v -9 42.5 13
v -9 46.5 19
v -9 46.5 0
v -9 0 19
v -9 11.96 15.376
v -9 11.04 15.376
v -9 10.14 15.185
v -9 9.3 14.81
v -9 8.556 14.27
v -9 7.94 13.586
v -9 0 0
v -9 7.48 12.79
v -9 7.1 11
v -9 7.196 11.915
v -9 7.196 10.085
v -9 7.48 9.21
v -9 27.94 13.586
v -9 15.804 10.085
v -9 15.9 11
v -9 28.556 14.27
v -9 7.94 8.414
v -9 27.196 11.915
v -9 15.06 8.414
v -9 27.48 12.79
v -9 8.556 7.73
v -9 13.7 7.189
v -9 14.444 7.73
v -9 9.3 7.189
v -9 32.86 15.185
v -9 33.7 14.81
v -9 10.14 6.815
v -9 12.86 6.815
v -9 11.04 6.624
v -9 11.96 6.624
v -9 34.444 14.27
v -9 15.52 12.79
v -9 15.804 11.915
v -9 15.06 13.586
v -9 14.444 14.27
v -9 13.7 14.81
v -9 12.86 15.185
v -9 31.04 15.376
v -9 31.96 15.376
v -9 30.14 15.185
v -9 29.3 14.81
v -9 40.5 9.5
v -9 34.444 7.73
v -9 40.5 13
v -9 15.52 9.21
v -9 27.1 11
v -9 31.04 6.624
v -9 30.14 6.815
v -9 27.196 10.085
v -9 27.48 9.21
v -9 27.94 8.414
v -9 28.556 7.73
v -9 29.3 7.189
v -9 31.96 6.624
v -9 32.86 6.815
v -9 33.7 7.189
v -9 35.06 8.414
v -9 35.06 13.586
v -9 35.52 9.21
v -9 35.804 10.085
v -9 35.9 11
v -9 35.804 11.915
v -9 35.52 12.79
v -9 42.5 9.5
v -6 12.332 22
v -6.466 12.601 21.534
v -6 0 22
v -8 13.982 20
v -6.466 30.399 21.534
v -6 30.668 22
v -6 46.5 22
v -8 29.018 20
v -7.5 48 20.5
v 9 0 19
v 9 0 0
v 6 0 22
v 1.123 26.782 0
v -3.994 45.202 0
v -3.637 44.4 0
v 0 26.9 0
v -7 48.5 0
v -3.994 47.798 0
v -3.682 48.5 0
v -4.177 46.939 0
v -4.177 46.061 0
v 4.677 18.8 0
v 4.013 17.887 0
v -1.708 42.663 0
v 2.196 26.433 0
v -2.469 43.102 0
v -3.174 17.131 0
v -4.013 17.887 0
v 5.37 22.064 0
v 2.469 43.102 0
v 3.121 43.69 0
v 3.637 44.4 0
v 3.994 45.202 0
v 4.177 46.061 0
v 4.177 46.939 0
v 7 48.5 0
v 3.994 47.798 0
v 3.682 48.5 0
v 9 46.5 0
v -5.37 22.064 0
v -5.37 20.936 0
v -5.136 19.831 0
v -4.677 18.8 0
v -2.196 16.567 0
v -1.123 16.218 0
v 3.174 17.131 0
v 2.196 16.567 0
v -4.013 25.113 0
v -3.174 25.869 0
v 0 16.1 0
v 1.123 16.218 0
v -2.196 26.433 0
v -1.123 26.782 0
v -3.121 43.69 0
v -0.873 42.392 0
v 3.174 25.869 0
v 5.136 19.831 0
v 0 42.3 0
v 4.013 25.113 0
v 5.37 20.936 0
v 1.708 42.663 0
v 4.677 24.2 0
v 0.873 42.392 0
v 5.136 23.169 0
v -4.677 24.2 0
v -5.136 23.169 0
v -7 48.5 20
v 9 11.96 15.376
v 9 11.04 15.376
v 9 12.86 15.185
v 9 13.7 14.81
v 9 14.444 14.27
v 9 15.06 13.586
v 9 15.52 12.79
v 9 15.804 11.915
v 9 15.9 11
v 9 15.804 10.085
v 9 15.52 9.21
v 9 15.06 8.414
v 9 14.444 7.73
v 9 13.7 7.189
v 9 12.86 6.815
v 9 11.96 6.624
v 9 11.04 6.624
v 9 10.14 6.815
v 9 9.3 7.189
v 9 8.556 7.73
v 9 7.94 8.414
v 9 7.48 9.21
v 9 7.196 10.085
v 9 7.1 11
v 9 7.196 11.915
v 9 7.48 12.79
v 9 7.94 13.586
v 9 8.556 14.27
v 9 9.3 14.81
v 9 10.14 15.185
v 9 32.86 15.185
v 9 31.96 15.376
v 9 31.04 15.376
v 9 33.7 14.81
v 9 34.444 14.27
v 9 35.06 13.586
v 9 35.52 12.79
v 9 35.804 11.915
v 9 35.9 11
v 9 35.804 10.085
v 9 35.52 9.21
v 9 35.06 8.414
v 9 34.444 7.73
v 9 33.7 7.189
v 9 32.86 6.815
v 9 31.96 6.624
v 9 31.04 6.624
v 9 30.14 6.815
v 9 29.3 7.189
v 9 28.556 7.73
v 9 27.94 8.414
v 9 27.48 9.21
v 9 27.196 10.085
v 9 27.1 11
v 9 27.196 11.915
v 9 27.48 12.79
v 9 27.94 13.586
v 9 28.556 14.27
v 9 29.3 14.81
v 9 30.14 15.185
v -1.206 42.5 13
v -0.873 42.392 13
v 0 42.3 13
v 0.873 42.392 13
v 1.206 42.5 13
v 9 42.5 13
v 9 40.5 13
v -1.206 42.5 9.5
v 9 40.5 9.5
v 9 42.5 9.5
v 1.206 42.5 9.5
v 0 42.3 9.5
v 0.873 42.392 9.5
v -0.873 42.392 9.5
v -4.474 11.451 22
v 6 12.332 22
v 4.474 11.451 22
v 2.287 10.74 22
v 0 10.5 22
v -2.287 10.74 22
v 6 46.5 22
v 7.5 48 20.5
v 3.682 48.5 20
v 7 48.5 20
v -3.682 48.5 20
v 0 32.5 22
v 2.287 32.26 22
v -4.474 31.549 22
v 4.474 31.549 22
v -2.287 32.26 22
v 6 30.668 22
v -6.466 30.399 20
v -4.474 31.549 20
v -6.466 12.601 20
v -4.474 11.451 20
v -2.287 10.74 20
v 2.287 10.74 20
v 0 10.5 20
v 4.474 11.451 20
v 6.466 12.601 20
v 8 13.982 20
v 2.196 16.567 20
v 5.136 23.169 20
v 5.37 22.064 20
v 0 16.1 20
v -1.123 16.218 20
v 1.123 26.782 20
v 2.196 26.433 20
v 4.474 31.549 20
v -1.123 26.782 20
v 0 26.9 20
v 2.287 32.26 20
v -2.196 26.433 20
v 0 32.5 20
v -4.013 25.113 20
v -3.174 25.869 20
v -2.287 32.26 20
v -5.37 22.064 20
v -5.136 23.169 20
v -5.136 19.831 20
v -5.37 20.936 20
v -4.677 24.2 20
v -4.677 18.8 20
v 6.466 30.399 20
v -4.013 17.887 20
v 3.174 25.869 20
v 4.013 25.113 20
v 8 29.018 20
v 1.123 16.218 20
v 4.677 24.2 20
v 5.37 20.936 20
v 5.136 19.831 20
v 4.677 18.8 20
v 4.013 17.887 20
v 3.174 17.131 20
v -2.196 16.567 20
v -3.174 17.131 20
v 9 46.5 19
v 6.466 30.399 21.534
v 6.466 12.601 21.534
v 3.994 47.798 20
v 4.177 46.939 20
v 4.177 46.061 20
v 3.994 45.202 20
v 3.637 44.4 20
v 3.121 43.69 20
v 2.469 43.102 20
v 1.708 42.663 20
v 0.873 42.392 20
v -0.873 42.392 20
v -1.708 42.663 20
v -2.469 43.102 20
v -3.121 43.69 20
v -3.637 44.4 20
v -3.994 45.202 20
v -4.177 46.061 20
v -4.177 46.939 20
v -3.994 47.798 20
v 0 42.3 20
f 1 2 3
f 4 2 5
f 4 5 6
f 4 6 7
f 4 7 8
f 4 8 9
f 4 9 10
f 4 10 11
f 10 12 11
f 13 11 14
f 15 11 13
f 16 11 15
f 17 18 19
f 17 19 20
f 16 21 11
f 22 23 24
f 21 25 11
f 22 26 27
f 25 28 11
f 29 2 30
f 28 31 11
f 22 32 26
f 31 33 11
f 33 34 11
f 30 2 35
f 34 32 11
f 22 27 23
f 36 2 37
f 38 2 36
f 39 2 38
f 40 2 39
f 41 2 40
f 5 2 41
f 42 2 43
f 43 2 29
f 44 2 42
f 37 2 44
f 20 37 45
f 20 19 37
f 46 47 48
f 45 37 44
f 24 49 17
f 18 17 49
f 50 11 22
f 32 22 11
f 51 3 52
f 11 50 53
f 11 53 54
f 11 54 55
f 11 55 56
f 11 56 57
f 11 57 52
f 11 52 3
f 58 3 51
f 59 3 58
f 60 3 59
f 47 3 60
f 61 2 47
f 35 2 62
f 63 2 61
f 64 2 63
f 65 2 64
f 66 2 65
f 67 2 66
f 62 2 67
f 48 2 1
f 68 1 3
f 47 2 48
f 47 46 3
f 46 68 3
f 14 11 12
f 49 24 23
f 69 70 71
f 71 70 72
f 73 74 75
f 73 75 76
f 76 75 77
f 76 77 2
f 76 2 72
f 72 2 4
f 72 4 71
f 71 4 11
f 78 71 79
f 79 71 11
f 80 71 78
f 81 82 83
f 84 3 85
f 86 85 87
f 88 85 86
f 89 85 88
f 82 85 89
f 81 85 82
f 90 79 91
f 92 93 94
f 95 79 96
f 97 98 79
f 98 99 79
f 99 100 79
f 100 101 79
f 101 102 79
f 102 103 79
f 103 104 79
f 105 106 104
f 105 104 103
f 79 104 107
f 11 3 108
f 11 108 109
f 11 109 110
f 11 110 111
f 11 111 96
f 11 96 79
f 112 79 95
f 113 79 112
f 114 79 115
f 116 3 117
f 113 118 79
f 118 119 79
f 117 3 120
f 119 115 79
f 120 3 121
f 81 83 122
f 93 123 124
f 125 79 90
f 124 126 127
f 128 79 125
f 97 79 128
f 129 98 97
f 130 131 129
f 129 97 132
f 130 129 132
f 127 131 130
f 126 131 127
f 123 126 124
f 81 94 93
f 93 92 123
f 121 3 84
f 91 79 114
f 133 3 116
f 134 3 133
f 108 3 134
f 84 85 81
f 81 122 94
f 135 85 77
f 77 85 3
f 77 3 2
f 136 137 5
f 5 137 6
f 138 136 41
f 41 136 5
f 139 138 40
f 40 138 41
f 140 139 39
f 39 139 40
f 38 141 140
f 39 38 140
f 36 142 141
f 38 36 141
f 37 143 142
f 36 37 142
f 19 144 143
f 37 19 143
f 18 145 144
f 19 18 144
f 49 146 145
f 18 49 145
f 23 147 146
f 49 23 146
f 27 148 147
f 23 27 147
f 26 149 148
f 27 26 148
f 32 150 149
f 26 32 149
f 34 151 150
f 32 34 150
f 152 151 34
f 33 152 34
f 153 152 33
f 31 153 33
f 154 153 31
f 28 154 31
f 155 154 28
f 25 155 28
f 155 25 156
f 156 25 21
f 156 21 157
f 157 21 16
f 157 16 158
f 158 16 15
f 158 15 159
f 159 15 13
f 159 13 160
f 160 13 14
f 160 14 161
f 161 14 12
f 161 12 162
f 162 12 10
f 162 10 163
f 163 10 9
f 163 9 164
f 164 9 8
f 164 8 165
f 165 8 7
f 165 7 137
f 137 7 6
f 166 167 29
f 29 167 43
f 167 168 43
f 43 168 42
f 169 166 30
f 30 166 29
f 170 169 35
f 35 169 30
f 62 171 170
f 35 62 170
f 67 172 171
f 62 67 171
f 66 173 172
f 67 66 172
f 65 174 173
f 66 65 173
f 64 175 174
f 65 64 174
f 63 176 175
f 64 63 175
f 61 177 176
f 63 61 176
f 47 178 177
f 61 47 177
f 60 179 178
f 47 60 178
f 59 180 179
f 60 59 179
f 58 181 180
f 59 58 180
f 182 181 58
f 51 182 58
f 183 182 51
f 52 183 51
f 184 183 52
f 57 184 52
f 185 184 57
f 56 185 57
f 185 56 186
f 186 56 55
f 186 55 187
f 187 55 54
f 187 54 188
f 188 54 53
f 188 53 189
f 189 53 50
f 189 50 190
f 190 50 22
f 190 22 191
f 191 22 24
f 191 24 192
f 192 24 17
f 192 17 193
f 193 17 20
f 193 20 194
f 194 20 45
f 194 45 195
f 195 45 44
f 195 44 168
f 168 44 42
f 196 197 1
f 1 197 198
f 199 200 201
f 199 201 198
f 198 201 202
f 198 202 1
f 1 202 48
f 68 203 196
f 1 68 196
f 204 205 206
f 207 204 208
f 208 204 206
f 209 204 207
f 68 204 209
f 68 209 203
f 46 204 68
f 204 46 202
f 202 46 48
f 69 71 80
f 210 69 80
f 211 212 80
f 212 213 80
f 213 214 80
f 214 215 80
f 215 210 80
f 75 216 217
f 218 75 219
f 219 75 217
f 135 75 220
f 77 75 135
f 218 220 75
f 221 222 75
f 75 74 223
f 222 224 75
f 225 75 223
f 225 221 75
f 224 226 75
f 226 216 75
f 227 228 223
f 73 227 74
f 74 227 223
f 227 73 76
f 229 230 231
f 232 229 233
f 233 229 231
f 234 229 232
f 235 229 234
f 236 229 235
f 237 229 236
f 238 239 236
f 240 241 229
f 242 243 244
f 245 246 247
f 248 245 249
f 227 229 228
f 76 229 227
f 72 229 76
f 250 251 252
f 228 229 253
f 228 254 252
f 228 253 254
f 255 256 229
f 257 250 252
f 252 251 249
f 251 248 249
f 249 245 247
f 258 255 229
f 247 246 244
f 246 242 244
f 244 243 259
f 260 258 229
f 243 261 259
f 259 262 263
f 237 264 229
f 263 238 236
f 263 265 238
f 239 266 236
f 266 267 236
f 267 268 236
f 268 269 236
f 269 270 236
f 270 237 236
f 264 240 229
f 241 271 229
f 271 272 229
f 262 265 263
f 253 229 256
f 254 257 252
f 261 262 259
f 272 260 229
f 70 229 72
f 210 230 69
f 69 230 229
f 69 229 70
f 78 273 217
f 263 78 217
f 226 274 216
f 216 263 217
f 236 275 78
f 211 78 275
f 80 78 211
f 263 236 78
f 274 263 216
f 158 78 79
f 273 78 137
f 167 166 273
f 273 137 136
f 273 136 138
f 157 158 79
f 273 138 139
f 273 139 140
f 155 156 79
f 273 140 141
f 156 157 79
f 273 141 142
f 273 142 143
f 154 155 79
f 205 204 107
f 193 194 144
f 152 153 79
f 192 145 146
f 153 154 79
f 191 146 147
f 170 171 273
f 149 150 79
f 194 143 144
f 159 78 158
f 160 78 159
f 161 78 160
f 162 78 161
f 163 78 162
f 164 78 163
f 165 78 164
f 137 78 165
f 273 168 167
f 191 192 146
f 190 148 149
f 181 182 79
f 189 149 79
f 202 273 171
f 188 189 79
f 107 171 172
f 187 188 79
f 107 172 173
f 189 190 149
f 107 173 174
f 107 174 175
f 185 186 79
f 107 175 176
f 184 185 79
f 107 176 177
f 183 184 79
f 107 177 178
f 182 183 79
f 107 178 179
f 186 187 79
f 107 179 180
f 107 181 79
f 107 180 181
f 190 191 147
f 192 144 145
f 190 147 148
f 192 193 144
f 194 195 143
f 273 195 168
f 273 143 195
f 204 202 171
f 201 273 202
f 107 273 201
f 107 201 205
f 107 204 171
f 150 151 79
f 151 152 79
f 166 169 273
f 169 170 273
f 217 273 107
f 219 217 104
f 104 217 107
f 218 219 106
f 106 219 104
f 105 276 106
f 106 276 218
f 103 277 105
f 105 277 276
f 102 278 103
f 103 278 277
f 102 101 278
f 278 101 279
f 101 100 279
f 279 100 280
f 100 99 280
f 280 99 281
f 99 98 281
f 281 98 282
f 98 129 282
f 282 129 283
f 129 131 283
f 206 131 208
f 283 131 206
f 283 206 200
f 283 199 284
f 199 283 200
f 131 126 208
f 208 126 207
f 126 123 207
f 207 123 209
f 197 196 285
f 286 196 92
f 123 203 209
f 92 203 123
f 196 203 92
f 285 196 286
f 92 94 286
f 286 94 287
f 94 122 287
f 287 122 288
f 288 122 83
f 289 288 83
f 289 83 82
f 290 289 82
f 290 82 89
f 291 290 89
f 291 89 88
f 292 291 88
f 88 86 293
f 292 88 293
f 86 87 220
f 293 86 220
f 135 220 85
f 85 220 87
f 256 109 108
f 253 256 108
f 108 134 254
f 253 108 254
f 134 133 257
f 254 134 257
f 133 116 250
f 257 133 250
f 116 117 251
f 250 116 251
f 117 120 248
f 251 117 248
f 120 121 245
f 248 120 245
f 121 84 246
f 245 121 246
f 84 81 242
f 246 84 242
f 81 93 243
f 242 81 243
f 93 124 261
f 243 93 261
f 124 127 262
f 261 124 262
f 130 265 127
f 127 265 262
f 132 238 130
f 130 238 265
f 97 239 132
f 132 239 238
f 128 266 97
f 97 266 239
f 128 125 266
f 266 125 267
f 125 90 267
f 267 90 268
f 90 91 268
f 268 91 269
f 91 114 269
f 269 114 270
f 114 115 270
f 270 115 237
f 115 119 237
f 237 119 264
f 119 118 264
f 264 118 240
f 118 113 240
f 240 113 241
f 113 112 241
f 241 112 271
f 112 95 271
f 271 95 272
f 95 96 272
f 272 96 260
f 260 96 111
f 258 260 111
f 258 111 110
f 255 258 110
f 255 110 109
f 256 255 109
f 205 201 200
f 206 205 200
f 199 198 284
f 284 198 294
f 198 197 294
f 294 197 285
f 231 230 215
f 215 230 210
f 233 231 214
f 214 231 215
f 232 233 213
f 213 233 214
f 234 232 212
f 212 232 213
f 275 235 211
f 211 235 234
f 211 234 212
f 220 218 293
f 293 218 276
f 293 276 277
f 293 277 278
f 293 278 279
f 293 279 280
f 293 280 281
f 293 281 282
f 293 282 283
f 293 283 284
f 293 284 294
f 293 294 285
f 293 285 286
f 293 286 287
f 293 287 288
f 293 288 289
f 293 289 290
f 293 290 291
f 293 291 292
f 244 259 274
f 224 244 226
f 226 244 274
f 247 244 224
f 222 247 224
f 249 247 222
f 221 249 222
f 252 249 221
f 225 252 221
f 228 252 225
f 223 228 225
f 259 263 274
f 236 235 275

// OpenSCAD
// PRUSA iteration3
// Y frame corners
// GNU GPL v3
// Josef Průša <iam@josefprusa.cz> and contributors
// http://www.reprap.org/wiki/Prusa_Mendel
// http://prusamendel.org
extraHeight = 1.5;

module corner_base(){	
 translate([-9,-11,0])cube([18,22,47+extraHeight]);
}

module corner_holes(){
 translate([-11,-11,0+extraHeight]){
  // Bottom hole
  translate([0,11,10]) rotate([0,90,0]) translate([0,0,-5]) cylinder(h = 270, r=4.4, $fn=30);
  // Top hole
  translate([0,11,30]) rotate([0,90,0]) translate([0,0,-5]) cylinder(h = 270, r=4.4, $fn=30);
  // Middle hole
  translate([11,0,20]) rotate([0,0,90]) rotate([0,90,0]) translate([0,0,-5]) cylinder(h = 270, r=5.4, $fn=30);

  // Washer hole
  translate([11,-3,20]) rotate([0,0,90]) rotate([0,90,0]) translate([0,0,-5]) cylinder(h = 10, r=11, $fn=30);

  // Top smooth rod insert
  // Smooth rod place
  translate([11,2,45]) rotate([0,90,90]) cylinder(h = 270, r=4.2, $fn=30); 
  // Ziptie
  translate([-5,9,39])  cube([30,3.5,2]);
 }
}

module corner_fancy(){
 // Side corner cutouts
  translate([-8,-9,0]) rotate([0,0,-45-180]) translate([-15,0,-1]) cube([30,30,51]);
  translate([8,-9,0]) rotate([0,0,45-180]) translate([-15,0,-1]) cube([30,30,51]);
 // Top corner cutouts
  translate([7,0,49-2+extraHeight]) rotate([0,45,0]) translate([-15,-15,0]) cube([30,30,30]);
  translate([-7,0,49-2+extraHeight]) rotate([0,-45,0]) translate([-15,-15,0]) cube([30,30,30]);
  rotate([0,0,90]){
   translate([-9,0,49-2+extraHeight]) rotate([0,-45,0]) translate([-15,-15,0]) cube([30,30,30]);
  }
}


// Final part
module corner(){
 // Rotate the part for better printing
 translate([0,0,11]) rotate([-90,0,0]) difference(){
  corner_base();
  corner_holes();
  corner_fancy();
 }
}

corner();
